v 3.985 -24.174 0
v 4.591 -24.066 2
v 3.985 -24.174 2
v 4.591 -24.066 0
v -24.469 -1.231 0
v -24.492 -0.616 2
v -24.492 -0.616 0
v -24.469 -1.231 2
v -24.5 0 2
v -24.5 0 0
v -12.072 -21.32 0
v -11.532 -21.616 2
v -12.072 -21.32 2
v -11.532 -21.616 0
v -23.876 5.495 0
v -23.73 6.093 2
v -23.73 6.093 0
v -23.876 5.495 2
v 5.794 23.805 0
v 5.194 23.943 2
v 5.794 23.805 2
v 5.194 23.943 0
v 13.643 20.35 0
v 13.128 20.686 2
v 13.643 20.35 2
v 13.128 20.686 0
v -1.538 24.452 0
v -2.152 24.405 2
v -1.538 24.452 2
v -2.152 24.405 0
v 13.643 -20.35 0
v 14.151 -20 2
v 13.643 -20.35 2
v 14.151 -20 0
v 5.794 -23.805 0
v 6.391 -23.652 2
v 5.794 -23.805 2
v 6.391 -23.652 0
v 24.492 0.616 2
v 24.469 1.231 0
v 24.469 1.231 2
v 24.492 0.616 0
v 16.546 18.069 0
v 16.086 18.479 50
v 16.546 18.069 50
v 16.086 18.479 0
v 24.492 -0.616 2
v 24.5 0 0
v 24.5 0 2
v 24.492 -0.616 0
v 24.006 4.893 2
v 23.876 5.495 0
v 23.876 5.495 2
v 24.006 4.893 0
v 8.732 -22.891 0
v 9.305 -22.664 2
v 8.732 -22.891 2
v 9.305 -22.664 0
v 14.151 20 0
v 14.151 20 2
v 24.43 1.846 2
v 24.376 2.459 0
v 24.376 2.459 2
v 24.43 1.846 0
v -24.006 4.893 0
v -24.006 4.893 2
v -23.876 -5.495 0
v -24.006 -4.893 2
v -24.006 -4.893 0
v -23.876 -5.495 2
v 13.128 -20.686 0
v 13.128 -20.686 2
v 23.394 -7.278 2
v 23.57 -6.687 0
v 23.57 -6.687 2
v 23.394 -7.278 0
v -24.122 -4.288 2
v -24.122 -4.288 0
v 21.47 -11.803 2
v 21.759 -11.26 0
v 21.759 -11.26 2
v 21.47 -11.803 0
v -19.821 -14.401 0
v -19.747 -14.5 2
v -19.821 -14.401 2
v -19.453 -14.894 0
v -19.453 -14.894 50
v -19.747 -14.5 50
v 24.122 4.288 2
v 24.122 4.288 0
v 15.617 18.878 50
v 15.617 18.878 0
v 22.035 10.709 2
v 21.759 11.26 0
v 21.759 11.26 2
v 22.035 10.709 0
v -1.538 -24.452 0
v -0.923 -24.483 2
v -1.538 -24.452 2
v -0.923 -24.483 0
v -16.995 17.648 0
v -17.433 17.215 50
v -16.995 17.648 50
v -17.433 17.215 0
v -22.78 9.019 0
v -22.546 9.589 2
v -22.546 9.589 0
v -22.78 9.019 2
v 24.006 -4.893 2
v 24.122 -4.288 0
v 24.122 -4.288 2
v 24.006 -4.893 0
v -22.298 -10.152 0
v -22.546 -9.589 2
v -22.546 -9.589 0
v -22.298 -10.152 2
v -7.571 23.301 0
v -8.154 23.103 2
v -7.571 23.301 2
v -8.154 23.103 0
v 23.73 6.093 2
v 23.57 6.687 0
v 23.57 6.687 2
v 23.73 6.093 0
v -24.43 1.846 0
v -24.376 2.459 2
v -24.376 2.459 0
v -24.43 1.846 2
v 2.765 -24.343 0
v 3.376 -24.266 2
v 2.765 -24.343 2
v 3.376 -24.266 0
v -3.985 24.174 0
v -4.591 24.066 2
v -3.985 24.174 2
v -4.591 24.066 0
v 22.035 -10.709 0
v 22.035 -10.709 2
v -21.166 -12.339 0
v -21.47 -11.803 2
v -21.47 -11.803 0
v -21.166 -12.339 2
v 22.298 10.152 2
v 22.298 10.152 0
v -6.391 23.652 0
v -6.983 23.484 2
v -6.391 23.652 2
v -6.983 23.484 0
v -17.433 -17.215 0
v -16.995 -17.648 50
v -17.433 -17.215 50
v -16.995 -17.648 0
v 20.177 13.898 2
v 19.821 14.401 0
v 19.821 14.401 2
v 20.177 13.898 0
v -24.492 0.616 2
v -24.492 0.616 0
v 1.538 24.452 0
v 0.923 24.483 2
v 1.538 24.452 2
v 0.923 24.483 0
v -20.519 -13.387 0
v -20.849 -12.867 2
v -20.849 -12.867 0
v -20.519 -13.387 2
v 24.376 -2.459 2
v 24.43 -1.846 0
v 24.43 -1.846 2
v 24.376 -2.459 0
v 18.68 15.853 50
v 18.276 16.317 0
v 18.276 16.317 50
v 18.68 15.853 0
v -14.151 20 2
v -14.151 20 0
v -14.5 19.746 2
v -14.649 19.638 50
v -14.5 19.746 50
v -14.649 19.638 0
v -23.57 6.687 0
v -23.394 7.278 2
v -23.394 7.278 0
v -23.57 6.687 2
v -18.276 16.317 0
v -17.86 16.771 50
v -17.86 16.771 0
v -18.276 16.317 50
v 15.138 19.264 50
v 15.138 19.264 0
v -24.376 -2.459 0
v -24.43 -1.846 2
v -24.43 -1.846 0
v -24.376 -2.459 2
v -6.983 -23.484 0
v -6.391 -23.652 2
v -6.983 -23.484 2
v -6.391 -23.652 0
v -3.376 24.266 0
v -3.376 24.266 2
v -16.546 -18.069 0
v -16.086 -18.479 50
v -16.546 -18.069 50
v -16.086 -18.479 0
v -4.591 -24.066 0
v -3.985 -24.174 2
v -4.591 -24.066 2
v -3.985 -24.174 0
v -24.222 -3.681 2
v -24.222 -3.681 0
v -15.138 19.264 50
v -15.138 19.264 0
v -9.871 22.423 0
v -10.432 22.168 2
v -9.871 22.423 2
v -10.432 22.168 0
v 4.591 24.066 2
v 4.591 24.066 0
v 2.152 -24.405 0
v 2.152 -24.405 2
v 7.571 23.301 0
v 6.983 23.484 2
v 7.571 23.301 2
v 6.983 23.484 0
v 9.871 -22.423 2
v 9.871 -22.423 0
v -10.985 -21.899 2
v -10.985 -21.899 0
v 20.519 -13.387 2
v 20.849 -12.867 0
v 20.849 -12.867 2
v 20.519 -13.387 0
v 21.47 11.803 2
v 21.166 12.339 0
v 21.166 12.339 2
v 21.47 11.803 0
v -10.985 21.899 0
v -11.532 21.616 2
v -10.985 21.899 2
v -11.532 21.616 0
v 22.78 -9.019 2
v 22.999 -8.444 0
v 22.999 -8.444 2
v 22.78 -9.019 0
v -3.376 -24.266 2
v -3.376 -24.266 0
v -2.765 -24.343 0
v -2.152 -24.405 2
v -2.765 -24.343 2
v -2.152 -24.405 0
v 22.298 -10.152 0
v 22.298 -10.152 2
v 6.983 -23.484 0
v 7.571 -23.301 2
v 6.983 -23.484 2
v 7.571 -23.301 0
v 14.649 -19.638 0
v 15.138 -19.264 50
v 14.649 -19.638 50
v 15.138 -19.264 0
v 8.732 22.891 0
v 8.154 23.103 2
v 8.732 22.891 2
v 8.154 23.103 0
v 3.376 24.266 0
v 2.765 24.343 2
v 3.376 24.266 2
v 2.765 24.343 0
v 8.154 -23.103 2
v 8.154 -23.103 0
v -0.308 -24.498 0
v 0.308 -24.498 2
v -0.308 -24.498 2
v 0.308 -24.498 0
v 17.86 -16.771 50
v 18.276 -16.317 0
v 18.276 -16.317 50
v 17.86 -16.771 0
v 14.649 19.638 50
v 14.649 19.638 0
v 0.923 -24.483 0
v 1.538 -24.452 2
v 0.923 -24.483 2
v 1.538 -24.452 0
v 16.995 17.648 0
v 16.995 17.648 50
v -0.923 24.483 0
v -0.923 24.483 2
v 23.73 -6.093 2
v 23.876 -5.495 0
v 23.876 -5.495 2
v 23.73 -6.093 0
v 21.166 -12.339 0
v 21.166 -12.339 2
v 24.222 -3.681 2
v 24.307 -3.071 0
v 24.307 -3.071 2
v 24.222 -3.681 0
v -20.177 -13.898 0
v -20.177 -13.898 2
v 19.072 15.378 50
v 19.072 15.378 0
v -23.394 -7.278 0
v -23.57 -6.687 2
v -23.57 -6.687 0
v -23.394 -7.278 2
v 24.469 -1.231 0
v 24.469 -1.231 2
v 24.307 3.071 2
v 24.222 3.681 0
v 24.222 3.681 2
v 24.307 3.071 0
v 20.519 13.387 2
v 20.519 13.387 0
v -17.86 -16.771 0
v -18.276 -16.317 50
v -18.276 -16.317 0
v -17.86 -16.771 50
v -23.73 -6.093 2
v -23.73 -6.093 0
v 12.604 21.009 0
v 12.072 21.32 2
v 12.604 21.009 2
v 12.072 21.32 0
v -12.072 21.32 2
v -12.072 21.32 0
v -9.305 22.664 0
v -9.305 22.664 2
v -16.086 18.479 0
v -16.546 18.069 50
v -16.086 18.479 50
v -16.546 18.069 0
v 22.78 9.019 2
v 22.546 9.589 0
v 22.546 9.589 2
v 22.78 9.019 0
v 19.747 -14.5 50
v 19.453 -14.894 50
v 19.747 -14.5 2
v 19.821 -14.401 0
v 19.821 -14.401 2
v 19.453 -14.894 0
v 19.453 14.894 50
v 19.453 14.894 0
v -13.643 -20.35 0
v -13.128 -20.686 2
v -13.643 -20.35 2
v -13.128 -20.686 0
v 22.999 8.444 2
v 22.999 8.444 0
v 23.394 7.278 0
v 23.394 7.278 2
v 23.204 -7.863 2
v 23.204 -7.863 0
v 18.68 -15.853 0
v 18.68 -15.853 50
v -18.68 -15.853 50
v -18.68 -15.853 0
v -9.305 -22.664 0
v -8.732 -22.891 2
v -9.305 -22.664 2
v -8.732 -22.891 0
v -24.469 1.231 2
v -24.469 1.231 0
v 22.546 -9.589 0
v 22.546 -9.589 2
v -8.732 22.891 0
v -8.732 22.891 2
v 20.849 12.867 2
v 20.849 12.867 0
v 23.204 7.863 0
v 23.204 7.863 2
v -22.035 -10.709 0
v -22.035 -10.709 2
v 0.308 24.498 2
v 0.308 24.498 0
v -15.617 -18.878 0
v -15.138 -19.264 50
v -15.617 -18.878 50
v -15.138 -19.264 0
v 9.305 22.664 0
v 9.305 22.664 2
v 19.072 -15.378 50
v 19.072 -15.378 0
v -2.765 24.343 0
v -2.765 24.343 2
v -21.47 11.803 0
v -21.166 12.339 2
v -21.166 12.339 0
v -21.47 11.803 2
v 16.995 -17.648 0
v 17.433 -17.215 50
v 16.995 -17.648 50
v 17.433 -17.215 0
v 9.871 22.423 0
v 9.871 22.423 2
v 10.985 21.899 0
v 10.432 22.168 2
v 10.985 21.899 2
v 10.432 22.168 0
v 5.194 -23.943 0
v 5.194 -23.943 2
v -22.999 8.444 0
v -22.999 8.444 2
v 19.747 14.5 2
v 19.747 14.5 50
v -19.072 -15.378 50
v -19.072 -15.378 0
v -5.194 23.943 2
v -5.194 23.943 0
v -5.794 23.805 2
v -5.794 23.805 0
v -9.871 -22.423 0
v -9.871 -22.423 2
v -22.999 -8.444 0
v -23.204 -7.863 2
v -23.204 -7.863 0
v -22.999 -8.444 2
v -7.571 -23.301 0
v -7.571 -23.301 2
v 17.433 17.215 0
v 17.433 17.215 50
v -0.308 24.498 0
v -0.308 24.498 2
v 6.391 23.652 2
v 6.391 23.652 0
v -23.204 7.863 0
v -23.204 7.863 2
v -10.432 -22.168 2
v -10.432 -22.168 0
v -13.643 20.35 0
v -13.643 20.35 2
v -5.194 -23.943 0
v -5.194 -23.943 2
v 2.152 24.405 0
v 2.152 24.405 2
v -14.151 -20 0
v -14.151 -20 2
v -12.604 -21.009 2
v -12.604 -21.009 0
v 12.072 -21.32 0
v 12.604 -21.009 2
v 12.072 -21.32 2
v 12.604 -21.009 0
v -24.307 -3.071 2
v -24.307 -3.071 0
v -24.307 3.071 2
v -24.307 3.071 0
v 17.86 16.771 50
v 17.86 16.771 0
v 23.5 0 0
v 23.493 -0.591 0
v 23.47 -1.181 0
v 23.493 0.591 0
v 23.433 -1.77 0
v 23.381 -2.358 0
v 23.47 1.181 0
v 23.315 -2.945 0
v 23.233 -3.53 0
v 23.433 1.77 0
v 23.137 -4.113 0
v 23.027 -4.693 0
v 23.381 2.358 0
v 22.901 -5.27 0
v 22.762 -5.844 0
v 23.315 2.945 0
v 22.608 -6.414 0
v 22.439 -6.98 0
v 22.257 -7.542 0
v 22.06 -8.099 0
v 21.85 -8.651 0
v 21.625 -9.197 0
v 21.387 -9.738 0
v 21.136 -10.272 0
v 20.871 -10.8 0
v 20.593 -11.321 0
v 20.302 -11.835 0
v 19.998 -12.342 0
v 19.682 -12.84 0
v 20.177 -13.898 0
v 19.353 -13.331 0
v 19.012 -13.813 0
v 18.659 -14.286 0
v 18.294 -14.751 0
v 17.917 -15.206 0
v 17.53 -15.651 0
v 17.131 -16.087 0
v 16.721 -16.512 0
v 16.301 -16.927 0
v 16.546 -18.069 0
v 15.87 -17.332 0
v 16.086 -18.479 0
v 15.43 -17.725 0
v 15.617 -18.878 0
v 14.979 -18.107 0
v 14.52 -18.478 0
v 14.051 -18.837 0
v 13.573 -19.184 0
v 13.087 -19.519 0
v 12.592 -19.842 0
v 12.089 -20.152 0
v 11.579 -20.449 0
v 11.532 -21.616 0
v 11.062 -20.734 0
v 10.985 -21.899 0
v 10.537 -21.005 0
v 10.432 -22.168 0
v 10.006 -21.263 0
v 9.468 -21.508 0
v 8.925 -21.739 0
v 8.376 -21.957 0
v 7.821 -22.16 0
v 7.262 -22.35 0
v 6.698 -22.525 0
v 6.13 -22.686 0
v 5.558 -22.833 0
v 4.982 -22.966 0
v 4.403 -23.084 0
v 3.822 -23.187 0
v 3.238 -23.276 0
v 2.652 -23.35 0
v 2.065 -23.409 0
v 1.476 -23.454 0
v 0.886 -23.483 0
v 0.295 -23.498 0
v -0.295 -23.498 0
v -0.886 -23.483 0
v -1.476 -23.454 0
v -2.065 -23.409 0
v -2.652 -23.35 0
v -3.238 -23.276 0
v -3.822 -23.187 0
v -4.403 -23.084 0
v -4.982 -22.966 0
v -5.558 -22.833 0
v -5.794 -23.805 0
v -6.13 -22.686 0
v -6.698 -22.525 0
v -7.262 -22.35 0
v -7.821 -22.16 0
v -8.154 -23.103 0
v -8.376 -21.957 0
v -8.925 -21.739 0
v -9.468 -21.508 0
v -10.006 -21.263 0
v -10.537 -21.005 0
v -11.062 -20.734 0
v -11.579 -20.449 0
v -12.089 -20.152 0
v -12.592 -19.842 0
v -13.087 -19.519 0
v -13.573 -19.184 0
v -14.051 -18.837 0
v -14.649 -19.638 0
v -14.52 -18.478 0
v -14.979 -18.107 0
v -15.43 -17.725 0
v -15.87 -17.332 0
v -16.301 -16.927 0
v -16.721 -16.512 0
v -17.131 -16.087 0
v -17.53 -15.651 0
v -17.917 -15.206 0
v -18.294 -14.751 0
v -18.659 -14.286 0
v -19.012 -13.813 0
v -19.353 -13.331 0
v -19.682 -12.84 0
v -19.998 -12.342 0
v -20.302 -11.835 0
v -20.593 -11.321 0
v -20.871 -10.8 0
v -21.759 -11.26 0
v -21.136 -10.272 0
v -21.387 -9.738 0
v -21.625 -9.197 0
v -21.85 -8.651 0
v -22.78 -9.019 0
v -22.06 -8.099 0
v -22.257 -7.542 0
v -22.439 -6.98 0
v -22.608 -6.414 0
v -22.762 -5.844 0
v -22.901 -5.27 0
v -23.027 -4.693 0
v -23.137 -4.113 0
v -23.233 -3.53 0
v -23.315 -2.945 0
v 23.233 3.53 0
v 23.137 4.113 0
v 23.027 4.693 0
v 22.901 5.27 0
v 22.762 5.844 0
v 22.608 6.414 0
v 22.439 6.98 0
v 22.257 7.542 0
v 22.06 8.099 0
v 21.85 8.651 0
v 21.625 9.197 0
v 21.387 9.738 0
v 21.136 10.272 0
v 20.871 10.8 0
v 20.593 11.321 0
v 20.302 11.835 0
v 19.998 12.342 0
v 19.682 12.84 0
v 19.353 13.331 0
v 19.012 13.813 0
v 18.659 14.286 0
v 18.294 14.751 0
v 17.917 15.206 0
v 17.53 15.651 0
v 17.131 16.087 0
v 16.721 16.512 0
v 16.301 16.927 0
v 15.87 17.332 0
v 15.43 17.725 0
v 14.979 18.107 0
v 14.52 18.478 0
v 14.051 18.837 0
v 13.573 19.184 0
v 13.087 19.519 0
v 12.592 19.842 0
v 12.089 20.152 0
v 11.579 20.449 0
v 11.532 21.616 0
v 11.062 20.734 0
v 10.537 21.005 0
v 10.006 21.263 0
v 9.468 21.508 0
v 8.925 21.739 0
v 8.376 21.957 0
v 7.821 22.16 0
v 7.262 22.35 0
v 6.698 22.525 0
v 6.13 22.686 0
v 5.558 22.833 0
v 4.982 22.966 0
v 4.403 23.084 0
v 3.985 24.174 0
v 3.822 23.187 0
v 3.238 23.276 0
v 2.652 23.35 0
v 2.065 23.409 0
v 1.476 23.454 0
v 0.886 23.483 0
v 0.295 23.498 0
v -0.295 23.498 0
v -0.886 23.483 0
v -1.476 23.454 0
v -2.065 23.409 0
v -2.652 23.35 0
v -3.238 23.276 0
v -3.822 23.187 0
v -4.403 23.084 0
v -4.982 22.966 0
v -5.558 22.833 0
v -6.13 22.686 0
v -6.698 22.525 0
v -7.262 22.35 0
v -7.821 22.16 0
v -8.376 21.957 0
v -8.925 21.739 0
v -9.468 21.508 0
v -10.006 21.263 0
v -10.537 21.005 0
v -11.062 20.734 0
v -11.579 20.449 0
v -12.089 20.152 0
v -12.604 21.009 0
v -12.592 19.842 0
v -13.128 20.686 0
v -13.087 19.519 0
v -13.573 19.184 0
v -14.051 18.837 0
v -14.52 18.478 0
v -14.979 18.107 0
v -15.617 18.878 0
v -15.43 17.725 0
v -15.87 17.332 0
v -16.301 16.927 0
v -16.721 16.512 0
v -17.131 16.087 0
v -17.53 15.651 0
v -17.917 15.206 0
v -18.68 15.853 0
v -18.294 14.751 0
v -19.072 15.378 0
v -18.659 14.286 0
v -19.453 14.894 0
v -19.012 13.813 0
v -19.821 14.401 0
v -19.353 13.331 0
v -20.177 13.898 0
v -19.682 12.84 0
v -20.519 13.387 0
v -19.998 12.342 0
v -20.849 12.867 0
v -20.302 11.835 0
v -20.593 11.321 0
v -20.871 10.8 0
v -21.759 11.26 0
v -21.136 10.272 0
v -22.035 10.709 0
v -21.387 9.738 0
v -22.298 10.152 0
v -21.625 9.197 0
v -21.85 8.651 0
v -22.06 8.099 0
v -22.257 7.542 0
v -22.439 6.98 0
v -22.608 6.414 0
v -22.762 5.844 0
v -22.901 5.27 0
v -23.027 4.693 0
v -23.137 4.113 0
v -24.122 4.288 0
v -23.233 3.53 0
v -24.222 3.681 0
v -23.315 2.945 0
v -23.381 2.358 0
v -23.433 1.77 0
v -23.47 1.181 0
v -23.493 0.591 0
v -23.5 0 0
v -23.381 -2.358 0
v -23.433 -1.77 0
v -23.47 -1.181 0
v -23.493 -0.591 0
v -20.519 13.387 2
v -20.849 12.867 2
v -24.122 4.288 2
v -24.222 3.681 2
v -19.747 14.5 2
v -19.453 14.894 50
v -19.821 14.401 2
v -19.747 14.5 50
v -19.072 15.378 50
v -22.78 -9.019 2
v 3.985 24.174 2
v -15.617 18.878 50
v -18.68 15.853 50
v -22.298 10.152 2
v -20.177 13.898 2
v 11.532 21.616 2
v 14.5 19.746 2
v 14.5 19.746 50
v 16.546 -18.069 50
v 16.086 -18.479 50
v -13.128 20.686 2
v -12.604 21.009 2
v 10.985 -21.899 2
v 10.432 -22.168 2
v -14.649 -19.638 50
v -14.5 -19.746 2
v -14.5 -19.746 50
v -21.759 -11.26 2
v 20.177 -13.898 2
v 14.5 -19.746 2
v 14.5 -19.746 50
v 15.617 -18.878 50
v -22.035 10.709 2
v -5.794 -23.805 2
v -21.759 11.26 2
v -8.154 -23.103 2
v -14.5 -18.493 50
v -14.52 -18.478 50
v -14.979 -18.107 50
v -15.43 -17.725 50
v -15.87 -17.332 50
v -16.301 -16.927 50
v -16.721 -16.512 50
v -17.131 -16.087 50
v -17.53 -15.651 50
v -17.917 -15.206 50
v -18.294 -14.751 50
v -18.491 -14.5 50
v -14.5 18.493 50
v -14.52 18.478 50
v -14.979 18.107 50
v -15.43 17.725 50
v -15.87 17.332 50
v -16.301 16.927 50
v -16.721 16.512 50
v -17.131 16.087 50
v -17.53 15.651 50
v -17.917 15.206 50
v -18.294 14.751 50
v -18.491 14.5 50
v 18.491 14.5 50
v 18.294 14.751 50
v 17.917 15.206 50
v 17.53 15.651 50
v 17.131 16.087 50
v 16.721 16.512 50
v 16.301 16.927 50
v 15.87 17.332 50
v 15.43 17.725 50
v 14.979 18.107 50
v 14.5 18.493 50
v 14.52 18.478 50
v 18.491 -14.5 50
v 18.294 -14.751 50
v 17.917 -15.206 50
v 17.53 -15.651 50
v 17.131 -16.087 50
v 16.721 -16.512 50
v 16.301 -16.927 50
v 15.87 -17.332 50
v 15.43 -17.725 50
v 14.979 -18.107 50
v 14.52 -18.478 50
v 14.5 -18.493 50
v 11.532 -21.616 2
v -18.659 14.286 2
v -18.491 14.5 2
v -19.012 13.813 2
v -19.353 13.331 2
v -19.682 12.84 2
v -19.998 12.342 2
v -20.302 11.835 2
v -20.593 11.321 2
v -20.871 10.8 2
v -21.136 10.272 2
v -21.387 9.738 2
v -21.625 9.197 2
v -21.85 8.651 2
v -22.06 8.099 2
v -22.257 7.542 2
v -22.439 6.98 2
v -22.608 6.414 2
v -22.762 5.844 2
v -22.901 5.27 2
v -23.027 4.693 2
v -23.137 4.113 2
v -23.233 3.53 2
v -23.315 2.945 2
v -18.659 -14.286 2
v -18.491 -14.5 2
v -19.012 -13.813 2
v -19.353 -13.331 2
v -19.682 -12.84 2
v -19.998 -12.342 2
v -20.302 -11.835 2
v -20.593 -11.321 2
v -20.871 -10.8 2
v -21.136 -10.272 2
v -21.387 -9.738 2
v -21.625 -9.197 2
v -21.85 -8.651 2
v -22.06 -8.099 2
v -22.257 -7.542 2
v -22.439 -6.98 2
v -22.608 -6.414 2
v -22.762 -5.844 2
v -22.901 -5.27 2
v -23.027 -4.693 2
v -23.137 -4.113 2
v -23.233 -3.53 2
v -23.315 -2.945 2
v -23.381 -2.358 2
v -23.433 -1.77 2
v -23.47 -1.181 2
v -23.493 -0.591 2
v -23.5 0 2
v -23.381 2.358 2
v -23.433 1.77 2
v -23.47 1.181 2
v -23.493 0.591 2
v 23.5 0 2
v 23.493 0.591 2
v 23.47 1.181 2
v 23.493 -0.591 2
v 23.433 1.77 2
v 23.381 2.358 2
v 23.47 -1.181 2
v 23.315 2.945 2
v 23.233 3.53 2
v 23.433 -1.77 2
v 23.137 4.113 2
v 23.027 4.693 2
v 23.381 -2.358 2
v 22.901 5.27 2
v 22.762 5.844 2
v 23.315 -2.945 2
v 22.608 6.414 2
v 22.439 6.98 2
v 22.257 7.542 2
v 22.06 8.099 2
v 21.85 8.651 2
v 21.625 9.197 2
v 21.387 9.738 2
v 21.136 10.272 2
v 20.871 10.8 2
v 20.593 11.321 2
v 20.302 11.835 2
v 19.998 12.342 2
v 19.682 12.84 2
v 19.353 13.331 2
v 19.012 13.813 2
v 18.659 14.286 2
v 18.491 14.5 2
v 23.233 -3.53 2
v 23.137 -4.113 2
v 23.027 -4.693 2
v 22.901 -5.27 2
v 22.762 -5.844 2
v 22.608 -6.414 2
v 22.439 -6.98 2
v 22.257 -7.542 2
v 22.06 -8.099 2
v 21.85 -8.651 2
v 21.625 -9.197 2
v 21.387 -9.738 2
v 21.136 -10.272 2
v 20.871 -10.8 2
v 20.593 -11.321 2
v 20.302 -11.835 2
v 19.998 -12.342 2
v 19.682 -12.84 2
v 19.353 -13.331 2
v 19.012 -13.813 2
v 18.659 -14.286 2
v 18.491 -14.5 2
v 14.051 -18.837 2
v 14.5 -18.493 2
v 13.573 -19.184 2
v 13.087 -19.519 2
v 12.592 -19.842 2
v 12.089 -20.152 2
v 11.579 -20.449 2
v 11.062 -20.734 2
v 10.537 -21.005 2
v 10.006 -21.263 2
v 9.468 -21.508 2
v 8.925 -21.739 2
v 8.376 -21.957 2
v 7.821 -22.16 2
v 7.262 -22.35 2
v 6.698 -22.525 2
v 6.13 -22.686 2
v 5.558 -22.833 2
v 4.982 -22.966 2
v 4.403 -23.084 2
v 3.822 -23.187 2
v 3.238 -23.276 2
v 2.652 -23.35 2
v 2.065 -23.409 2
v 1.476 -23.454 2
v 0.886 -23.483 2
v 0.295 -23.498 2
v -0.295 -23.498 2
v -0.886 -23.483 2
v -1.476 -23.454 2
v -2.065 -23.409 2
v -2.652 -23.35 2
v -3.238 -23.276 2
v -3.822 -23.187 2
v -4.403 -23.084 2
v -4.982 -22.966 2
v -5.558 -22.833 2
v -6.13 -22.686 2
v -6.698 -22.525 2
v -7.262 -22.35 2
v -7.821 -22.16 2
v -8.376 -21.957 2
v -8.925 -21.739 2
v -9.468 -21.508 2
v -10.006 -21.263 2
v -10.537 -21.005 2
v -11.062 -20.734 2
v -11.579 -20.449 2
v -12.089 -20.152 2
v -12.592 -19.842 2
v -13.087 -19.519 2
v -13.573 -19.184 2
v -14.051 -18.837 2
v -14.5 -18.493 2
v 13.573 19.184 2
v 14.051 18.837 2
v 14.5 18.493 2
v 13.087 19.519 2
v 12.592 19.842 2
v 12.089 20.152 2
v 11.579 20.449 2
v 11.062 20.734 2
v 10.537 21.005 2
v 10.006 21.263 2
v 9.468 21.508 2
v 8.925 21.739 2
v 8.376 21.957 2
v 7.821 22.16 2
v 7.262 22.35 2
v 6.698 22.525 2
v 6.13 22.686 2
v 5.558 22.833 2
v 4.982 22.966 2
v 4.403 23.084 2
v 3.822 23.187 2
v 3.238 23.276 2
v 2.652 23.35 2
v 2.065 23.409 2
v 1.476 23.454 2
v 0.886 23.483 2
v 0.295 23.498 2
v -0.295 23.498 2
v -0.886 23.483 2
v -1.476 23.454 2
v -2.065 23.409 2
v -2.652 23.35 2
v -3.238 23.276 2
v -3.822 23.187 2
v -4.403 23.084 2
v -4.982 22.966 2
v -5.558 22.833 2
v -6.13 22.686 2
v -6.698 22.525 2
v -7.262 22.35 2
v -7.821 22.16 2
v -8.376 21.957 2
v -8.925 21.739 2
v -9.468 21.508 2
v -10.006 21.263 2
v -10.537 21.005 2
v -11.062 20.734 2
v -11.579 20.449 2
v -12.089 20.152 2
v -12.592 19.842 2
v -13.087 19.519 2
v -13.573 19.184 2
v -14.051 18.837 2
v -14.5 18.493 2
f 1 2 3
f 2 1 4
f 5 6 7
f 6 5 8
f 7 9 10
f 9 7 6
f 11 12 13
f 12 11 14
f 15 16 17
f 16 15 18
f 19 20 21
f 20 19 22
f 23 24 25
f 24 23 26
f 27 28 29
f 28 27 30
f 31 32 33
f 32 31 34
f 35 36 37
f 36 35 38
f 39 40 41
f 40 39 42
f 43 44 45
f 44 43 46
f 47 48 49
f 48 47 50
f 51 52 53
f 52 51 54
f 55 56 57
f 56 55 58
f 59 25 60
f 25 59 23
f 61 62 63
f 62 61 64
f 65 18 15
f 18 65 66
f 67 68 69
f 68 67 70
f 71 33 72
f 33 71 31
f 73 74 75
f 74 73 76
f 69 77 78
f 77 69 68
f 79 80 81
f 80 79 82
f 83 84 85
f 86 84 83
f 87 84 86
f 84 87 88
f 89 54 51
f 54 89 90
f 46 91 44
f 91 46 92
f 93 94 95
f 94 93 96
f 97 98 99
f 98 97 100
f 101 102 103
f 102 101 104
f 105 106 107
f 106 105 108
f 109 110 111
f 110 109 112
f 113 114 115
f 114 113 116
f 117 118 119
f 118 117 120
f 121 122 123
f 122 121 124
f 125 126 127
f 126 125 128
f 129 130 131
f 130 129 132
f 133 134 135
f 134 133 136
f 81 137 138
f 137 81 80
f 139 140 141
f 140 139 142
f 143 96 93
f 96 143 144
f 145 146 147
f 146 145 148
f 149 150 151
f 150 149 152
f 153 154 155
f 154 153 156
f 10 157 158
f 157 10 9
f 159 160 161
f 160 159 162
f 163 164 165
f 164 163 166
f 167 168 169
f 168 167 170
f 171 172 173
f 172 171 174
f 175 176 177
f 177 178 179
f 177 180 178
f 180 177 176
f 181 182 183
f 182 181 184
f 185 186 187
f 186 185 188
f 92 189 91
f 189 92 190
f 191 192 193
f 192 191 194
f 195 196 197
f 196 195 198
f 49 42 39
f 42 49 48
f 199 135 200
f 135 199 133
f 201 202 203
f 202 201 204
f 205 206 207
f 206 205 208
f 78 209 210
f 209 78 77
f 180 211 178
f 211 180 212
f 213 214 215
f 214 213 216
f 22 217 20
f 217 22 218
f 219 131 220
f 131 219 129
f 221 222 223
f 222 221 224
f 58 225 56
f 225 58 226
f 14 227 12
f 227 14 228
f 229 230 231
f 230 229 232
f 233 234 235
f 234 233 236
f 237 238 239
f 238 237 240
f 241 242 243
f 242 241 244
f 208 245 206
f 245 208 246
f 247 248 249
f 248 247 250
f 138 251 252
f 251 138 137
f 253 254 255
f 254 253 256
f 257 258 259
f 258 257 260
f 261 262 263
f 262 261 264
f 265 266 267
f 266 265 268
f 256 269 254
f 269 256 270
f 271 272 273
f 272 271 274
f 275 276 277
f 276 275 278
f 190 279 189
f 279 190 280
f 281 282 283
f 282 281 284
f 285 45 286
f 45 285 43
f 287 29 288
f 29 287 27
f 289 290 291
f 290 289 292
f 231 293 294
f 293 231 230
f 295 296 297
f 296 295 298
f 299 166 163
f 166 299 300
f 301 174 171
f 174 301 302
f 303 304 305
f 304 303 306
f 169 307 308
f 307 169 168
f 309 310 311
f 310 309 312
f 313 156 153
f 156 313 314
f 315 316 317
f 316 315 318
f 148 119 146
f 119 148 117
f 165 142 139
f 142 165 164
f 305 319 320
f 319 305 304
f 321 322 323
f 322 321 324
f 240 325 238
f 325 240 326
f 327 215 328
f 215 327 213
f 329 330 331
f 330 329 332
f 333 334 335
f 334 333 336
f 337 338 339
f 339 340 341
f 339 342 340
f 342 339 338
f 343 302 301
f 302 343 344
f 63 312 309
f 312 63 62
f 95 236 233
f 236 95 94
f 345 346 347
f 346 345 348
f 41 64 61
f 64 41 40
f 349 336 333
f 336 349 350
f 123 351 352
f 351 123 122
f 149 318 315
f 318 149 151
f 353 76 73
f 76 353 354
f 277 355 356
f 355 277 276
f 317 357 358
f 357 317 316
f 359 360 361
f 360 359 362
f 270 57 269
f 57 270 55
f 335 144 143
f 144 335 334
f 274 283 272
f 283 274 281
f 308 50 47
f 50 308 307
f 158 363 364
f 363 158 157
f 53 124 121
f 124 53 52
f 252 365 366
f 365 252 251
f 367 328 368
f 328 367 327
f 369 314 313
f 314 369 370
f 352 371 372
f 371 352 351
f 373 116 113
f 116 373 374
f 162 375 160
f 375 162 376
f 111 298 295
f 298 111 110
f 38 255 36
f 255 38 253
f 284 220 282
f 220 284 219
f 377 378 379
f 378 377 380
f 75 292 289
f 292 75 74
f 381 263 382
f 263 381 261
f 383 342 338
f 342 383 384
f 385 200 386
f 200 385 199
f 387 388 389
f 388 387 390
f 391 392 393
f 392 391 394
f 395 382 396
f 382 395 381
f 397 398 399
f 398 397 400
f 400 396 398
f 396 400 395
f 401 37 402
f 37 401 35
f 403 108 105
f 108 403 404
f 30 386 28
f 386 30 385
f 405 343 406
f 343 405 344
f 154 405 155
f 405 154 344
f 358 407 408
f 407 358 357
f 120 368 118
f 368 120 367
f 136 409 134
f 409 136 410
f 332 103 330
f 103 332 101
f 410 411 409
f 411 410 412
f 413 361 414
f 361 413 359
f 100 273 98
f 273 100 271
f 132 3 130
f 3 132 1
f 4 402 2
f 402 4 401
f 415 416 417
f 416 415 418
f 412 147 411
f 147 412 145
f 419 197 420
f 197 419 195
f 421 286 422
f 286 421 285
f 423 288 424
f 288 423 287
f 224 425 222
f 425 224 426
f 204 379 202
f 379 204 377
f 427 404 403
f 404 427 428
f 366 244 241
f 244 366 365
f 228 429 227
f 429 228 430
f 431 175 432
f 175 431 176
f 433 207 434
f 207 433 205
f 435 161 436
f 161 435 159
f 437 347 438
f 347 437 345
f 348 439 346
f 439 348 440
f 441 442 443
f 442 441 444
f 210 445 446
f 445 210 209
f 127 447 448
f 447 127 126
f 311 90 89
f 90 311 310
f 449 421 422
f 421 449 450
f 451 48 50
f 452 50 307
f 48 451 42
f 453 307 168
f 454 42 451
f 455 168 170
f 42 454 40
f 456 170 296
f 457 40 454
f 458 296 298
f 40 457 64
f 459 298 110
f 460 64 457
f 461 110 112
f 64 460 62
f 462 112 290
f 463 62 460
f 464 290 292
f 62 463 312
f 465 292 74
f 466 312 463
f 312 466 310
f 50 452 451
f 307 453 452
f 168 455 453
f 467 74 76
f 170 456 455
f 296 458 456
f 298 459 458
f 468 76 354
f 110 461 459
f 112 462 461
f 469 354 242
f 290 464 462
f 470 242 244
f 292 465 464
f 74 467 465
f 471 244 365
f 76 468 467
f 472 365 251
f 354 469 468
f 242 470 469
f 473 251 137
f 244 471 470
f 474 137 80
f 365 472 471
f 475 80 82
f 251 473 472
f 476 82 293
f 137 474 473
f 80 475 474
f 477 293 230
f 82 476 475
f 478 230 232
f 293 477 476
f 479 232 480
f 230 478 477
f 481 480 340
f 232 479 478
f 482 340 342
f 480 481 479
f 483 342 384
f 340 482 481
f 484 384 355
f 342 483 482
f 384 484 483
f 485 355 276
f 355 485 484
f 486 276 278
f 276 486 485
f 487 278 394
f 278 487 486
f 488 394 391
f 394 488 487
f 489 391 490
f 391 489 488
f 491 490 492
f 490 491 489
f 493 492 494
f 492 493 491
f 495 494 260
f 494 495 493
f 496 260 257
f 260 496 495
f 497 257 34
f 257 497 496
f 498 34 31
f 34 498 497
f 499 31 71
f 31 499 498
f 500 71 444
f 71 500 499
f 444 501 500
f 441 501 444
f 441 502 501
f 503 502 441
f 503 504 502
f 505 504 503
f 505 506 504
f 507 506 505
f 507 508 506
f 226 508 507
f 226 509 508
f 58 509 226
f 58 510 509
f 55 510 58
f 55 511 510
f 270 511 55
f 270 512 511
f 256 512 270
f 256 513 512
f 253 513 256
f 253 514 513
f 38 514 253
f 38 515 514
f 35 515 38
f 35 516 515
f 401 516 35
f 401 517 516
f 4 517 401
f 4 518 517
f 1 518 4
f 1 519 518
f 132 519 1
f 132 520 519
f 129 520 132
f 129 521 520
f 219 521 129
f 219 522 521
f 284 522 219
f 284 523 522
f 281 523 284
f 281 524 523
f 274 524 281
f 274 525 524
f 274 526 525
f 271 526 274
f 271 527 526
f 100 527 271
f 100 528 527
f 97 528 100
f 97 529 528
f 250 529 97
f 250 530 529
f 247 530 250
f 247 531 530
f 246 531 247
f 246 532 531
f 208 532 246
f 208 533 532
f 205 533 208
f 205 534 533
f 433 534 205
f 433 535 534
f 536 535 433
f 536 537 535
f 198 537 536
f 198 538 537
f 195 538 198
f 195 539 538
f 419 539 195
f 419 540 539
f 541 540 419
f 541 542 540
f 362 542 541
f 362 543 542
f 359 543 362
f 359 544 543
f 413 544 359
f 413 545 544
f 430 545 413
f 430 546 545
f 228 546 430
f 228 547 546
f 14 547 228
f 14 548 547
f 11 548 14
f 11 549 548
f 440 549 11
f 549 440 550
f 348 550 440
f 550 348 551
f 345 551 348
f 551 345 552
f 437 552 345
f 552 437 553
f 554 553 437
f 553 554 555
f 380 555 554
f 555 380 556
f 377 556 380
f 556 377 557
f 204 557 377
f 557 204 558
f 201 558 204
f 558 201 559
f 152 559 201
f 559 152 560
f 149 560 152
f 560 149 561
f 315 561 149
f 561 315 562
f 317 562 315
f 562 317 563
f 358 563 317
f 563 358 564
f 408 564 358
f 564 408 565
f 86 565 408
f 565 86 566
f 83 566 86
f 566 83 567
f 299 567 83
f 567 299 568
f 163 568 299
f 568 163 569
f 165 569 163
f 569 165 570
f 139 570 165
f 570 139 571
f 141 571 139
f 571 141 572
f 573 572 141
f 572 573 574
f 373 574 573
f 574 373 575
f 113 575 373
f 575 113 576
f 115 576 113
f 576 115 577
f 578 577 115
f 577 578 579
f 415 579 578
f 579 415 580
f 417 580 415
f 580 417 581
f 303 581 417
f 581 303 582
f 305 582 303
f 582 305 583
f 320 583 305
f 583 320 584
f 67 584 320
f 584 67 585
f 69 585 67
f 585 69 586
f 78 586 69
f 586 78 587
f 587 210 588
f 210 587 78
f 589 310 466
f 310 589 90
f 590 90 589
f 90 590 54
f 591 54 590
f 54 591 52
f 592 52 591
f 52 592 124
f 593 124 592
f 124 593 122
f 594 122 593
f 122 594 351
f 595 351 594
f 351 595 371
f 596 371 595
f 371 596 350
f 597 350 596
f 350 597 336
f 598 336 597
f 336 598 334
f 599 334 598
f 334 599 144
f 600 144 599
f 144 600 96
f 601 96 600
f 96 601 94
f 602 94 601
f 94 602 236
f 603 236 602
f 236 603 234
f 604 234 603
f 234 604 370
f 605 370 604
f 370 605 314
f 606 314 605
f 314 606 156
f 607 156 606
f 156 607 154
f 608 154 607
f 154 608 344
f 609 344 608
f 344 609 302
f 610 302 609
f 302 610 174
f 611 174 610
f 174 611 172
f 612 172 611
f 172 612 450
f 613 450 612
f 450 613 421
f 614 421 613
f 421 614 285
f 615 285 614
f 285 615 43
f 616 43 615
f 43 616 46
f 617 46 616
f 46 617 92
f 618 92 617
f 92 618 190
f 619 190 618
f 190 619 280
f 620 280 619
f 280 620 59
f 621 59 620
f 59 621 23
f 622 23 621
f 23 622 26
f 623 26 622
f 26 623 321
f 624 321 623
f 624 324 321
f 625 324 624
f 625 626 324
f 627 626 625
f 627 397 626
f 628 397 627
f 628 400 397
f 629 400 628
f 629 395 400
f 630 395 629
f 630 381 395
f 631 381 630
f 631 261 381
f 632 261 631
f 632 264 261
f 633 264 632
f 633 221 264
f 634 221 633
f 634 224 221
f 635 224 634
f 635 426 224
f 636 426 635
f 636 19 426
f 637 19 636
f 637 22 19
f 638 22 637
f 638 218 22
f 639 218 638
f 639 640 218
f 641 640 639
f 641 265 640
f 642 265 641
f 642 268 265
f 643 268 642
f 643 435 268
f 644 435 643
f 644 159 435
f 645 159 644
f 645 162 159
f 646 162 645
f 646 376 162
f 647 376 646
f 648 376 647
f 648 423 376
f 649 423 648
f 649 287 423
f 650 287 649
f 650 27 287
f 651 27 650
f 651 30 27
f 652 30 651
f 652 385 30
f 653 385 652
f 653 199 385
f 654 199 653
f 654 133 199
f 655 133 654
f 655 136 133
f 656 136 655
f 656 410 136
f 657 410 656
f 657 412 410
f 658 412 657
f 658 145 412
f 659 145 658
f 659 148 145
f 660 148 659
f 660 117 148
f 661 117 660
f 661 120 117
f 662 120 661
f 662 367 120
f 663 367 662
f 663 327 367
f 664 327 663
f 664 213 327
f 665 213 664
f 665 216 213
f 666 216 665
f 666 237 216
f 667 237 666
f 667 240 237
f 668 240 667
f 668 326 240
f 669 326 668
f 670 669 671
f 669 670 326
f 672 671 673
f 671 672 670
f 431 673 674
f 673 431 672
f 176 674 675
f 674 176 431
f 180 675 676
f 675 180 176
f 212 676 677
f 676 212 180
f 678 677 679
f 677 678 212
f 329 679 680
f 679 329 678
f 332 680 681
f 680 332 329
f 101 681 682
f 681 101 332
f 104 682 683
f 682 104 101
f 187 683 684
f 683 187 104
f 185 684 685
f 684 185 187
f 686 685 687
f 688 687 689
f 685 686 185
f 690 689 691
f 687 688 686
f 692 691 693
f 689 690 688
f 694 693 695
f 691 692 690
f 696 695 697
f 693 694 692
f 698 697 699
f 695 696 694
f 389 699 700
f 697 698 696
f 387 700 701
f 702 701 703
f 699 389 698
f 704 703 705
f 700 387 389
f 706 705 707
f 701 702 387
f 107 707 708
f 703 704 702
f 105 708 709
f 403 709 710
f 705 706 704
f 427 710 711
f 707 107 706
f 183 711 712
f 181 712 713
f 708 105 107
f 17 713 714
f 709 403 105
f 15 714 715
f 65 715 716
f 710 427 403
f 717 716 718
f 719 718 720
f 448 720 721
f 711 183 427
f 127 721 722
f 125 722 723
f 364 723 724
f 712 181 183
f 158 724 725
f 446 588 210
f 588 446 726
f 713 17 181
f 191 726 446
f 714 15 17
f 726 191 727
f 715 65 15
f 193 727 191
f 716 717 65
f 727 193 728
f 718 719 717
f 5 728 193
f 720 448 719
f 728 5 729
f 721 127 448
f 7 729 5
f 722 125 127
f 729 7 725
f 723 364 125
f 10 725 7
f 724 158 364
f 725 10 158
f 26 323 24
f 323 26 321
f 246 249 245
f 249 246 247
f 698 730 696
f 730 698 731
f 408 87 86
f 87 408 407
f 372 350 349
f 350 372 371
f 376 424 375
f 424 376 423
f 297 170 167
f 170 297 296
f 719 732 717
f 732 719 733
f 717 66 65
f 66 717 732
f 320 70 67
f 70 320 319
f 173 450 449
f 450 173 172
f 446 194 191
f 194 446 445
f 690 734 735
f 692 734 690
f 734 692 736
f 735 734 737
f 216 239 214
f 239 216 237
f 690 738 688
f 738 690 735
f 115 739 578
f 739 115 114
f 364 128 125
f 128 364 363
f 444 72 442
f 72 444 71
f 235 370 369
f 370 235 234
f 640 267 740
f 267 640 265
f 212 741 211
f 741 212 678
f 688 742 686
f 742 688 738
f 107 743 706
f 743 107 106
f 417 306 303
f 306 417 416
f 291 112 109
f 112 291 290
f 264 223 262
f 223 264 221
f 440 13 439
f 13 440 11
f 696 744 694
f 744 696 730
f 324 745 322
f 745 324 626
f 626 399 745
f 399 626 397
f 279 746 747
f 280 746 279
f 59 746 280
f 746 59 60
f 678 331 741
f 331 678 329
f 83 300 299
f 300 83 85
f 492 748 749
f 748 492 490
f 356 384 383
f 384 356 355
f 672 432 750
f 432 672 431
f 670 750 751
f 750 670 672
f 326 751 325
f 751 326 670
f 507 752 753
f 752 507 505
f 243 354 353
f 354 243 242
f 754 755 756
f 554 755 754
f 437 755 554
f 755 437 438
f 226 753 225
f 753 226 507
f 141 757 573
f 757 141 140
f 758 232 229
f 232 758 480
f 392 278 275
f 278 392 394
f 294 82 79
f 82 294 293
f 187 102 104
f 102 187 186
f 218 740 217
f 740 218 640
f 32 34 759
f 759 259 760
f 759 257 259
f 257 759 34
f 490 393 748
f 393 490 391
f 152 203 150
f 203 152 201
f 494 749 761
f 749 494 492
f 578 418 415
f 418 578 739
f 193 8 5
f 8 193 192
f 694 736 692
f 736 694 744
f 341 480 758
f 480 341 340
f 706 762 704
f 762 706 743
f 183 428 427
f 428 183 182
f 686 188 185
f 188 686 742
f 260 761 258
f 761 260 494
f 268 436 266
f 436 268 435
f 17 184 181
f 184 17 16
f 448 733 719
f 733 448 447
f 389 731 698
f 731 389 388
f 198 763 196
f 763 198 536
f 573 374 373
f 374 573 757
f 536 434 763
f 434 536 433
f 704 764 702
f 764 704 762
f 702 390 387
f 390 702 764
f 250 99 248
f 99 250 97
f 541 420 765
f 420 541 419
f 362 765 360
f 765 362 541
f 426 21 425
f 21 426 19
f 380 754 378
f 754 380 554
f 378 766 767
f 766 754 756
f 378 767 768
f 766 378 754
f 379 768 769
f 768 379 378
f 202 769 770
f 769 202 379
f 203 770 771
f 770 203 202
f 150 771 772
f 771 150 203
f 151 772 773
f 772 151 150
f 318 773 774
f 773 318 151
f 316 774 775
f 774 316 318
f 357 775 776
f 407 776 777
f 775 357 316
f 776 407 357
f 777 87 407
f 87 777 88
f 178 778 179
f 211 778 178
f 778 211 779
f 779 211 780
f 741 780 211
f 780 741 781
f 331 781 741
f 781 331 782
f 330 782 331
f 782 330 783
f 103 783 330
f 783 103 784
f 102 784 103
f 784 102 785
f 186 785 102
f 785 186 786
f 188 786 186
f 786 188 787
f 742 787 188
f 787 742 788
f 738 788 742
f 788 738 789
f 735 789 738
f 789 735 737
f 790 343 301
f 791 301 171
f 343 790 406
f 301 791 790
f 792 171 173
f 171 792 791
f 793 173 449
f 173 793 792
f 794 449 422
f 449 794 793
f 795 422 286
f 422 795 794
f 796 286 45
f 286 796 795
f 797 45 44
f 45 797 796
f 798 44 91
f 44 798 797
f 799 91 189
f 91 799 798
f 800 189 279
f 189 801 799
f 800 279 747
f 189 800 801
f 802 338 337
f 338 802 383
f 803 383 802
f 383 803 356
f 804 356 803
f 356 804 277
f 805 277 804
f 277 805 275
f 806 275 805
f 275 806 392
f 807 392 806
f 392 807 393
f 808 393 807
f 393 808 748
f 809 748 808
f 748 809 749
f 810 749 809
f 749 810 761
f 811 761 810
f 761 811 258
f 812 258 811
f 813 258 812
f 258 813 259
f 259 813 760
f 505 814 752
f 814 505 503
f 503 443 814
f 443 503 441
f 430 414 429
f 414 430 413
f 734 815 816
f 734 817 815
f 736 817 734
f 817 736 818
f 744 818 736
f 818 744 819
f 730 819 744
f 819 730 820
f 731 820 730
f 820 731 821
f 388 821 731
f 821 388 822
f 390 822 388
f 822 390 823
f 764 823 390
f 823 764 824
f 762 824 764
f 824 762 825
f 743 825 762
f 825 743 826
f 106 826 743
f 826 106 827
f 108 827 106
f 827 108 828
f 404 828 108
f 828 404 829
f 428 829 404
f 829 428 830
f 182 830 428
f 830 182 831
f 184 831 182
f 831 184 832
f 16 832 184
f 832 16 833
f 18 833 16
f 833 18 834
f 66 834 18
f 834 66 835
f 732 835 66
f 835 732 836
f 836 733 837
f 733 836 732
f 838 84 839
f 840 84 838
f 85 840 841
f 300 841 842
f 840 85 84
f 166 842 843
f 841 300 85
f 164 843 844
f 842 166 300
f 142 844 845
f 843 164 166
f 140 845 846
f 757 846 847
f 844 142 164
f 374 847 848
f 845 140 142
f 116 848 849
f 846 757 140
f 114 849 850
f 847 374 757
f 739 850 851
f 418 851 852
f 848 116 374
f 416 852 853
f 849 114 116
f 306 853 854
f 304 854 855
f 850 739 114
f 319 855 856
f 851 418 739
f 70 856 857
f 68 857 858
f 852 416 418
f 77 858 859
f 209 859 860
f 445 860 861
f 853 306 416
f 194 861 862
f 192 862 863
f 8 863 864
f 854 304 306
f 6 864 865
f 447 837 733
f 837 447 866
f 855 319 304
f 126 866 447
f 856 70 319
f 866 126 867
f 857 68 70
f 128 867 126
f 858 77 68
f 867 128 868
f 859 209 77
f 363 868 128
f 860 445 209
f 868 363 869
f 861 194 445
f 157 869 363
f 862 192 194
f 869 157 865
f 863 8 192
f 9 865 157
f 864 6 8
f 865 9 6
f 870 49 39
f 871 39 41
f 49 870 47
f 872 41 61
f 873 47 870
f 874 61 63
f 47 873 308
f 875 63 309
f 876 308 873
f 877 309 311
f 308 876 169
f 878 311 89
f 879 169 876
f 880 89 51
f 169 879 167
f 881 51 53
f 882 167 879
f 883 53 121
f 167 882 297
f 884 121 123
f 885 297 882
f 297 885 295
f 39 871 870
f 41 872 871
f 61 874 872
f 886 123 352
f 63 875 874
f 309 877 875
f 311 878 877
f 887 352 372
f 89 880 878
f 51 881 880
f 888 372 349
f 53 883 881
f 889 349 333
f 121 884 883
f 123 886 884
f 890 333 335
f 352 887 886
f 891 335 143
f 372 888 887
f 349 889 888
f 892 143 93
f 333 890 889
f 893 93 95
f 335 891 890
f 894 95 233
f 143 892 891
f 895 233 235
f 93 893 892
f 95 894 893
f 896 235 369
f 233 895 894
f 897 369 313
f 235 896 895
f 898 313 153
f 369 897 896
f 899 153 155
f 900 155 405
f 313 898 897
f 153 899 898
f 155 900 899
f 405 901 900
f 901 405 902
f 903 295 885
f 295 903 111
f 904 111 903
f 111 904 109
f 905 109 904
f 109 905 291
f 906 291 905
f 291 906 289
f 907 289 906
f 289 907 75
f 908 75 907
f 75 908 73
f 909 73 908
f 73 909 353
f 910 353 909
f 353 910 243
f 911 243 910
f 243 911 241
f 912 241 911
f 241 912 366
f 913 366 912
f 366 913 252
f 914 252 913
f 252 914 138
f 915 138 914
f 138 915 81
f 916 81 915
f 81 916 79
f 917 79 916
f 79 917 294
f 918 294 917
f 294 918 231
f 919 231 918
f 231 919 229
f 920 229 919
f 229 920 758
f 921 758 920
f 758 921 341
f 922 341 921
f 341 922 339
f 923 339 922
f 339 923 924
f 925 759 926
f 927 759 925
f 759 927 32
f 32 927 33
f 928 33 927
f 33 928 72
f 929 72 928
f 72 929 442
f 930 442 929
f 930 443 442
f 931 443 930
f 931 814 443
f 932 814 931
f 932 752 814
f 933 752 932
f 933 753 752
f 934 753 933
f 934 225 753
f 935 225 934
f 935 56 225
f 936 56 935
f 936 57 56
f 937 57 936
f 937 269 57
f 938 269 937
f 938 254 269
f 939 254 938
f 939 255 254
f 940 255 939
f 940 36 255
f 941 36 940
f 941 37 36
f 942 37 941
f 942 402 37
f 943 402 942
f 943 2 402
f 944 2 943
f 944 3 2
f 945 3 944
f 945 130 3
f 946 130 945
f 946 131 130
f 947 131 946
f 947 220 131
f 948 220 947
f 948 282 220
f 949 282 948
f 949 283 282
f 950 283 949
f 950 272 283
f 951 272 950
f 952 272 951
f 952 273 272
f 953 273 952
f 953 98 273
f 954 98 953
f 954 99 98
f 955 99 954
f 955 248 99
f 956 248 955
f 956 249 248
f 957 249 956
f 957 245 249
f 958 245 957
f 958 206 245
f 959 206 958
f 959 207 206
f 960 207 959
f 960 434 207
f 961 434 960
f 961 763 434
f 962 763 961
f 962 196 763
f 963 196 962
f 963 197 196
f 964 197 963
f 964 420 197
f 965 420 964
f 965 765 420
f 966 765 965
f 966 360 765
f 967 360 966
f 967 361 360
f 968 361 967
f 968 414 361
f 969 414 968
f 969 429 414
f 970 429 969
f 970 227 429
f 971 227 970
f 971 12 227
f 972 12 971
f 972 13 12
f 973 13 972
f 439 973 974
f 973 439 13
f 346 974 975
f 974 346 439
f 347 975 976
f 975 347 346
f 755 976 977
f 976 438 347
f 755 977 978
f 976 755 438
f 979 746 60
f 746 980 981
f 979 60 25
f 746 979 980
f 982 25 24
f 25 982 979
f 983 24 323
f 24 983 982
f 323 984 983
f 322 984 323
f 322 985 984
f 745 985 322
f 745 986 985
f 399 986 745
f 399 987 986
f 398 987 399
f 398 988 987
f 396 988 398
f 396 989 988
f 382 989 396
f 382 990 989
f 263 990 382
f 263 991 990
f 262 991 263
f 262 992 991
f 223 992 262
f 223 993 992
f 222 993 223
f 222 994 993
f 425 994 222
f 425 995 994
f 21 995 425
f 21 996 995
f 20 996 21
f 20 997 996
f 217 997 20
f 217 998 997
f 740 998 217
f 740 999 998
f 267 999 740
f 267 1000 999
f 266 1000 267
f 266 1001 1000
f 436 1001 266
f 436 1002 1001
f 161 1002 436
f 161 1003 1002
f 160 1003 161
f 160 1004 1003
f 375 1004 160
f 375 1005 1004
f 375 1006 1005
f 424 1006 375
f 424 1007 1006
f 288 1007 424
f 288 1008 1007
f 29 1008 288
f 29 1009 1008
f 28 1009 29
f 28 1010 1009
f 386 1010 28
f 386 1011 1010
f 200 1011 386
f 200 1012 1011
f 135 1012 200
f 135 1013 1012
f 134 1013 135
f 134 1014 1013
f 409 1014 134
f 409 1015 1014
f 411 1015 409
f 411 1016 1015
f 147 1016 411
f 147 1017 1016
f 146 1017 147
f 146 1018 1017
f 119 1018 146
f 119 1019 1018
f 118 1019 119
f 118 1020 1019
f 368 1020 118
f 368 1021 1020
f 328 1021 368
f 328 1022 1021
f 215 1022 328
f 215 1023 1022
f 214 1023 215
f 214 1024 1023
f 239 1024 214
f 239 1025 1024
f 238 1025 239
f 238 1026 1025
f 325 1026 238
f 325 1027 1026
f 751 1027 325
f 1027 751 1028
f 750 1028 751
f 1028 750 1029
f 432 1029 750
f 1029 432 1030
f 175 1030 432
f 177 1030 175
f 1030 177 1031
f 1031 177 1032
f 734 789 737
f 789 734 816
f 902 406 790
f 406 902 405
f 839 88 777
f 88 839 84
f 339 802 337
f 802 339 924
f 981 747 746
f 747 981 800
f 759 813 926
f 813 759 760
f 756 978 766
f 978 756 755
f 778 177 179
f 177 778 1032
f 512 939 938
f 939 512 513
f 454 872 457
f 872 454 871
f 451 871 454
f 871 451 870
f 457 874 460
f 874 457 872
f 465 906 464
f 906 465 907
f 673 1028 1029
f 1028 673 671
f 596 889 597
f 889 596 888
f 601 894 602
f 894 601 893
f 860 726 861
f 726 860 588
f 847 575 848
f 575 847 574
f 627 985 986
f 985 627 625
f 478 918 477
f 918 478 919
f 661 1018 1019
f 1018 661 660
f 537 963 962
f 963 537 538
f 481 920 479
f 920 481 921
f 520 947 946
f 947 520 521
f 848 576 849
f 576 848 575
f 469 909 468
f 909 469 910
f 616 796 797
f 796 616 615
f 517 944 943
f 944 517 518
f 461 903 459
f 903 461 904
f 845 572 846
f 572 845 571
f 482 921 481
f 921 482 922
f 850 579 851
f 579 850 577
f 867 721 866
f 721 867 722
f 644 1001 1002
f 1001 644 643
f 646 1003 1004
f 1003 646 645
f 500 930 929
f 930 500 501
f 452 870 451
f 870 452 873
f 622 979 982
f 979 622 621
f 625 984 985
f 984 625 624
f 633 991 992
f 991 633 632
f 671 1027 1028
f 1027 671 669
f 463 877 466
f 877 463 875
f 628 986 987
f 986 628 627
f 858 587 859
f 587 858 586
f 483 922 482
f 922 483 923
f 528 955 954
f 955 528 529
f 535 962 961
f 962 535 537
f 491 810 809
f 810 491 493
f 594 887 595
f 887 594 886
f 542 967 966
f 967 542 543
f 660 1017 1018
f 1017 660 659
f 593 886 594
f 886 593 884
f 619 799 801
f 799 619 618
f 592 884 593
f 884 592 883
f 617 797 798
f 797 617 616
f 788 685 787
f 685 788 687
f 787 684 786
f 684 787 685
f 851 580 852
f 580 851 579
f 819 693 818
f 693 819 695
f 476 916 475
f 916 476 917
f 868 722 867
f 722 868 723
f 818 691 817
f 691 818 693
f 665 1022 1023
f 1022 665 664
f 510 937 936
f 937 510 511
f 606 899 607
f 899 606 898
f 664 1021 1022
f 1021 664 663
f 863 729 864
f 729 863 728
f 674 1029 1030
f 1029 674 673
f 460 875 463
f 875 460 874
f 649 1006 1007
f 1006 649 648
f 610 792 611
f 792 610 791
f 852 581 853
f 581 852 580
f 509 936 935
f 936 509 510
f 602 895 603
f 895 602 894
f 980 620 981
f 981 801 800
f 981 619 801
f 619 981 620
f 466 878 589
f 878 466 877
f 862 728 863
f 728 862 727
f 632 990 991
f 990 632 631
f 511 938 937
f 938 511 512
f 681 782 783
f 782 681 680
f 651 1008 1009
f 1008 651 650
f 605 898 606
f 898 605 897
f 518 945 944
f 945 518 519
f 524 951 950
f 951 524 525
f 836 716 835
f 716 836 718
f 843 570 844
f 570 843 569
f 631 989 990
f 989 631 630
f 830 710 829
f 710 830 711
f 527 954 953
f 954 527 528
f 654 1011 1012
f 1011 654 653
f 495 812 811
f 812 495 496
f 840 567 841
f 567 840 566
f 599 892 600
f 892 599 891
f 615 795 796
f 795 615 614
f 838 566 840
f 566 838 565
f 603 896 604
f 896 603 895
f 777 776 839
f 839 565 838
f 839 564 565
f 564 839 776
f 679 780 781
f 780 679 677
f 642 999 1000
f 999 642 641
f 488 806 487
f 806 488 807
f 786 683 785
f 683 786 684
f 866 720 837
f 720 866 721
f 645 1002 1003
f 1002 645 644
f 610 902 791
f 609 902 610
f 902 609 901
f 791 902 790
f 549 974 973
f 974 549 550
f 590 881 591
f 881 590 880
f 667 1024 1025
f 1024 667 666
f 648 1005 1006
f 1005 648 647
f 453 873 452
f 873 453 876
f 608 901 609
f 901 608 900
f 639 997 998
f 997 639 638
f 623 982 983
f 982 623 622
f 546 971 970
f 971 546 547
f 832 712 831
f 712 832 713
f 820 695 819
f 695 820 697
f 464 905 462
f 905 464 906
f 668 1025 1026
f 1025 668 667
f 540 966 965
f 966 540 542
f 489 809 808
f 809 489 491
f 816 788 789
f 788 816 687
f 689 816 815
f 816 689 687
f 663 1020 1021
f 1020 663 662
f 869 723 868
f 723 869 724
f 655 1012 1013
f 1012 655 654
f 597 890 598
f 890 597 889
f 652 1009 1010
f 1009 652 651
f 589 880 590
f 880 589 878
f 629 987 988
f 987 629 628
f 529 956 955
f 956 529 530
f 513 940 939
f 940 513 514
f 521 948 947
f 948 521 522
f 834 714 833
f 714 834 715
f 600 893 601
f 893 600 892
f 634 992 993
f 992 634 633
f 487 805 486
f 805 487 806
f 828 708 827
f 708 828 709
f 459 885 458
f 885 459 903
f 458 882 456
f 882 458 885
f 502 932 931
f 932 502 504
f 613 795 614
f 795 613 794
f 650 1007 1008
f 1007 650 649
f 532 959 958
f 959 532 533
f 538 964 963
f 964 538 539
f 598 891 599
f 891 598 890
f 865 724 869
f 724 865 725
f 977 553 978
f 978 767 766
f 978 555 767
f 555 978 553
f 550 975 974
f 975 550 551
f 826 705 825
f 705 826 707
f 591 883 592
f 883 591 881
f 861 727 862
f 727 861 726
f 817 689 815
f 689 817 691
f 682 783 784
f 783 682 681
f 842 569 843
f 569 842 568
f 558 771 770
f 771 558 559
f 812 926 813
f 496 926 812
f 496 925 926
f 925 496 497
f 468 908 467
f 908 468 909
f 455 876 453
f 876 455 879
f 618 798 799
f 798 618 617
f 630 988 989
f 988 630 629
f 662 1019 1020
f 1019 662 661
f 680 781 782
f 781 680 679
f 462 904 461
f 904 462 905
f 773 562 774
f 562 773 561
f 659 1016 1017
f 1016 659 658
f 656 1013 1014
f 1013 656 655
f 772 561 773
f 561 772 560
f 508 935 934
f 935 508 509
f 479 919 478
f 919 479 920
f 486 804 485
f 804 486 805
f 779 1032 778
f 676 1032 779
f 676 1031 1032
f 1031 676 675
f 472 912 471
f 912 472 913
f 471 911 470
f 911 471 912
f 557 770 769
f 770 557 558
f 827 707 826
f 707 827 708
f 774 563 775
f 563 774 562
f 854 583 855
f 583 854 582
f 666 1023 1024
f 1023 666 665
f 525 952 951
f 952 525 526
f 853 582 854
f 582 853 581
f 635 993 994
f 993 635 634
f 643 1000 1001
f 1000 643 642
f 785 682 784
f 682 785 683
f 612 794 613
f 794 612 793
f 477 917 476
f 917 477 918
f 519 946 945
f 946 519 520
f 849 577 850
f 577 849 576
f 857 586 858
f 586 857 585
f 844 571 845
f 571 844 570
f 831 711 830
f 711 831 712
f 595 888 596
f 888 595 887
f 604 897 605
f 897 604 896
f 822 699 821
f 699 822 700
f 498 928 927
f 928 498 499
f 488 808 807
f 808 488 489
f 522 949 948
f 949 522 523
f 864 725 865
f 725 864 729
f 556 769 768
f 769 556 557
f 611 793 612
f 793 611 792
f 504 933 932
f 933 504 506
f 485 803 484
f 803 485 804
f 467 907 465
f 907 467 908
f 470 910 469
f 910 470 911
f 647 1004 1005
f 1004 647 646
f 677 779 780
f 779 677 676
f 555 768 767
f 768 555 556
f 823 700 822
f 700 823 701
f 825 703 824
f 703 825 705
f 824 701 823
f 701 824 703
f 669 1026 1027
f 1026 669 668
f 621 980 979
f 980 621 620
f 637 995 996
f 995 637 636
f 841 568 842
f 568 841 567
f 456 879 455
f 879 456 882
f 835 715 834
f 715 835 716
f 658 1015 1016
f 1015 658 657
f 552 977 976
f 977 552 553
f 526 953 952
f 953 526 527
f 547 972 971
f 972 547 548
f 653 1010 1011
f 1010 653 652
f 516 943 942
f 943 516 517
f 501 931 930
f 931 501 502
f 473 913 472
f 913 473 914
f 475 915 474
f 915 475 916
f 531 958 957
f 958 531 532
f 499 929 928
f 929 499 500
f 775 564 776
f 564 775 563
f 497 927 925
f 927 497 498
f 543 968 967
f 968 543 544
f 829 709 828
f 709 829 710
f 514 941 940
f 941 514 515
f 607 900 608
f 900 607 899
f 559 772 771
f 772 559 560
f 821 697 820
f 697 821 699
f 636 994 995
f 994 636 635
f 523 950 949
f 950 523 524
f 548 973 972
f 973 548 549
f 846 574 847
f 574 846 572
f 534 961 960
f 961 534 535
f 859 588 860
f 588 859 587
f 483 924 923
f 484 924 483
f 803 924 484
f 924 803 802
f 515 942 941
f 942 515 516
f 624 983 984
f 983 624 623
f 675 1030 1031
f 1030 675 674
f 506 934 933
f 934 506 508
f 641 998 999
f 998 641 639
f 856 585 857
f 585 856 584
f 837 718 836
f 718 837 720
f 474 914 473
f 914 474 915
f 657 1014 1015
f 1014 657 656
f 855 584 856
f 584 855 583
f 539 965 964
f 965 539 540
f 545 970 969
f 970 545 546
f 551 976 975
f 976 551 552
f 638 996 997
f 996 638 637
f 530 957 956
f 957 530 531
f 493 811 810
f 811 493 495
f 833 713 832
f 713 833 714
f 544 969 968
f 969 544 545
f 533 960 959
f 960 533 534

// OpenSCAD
$fn = 250;

inner_diam = 49;
length = 50;

difference() {
    cylinder(h=length, r=inner_diam/2);
    translate([0, 0, 252])
    cube([inner_diam + 5, inner_diam - 20, 500], center = true);
    translate([0, 0, 252])
    cube([inner_diam - 20, inner_diam + 5, 500], center = true);
    translate([0, 0, -1])
    cylinder(h=length+2, r=inner_diam/2 - 1);
}
